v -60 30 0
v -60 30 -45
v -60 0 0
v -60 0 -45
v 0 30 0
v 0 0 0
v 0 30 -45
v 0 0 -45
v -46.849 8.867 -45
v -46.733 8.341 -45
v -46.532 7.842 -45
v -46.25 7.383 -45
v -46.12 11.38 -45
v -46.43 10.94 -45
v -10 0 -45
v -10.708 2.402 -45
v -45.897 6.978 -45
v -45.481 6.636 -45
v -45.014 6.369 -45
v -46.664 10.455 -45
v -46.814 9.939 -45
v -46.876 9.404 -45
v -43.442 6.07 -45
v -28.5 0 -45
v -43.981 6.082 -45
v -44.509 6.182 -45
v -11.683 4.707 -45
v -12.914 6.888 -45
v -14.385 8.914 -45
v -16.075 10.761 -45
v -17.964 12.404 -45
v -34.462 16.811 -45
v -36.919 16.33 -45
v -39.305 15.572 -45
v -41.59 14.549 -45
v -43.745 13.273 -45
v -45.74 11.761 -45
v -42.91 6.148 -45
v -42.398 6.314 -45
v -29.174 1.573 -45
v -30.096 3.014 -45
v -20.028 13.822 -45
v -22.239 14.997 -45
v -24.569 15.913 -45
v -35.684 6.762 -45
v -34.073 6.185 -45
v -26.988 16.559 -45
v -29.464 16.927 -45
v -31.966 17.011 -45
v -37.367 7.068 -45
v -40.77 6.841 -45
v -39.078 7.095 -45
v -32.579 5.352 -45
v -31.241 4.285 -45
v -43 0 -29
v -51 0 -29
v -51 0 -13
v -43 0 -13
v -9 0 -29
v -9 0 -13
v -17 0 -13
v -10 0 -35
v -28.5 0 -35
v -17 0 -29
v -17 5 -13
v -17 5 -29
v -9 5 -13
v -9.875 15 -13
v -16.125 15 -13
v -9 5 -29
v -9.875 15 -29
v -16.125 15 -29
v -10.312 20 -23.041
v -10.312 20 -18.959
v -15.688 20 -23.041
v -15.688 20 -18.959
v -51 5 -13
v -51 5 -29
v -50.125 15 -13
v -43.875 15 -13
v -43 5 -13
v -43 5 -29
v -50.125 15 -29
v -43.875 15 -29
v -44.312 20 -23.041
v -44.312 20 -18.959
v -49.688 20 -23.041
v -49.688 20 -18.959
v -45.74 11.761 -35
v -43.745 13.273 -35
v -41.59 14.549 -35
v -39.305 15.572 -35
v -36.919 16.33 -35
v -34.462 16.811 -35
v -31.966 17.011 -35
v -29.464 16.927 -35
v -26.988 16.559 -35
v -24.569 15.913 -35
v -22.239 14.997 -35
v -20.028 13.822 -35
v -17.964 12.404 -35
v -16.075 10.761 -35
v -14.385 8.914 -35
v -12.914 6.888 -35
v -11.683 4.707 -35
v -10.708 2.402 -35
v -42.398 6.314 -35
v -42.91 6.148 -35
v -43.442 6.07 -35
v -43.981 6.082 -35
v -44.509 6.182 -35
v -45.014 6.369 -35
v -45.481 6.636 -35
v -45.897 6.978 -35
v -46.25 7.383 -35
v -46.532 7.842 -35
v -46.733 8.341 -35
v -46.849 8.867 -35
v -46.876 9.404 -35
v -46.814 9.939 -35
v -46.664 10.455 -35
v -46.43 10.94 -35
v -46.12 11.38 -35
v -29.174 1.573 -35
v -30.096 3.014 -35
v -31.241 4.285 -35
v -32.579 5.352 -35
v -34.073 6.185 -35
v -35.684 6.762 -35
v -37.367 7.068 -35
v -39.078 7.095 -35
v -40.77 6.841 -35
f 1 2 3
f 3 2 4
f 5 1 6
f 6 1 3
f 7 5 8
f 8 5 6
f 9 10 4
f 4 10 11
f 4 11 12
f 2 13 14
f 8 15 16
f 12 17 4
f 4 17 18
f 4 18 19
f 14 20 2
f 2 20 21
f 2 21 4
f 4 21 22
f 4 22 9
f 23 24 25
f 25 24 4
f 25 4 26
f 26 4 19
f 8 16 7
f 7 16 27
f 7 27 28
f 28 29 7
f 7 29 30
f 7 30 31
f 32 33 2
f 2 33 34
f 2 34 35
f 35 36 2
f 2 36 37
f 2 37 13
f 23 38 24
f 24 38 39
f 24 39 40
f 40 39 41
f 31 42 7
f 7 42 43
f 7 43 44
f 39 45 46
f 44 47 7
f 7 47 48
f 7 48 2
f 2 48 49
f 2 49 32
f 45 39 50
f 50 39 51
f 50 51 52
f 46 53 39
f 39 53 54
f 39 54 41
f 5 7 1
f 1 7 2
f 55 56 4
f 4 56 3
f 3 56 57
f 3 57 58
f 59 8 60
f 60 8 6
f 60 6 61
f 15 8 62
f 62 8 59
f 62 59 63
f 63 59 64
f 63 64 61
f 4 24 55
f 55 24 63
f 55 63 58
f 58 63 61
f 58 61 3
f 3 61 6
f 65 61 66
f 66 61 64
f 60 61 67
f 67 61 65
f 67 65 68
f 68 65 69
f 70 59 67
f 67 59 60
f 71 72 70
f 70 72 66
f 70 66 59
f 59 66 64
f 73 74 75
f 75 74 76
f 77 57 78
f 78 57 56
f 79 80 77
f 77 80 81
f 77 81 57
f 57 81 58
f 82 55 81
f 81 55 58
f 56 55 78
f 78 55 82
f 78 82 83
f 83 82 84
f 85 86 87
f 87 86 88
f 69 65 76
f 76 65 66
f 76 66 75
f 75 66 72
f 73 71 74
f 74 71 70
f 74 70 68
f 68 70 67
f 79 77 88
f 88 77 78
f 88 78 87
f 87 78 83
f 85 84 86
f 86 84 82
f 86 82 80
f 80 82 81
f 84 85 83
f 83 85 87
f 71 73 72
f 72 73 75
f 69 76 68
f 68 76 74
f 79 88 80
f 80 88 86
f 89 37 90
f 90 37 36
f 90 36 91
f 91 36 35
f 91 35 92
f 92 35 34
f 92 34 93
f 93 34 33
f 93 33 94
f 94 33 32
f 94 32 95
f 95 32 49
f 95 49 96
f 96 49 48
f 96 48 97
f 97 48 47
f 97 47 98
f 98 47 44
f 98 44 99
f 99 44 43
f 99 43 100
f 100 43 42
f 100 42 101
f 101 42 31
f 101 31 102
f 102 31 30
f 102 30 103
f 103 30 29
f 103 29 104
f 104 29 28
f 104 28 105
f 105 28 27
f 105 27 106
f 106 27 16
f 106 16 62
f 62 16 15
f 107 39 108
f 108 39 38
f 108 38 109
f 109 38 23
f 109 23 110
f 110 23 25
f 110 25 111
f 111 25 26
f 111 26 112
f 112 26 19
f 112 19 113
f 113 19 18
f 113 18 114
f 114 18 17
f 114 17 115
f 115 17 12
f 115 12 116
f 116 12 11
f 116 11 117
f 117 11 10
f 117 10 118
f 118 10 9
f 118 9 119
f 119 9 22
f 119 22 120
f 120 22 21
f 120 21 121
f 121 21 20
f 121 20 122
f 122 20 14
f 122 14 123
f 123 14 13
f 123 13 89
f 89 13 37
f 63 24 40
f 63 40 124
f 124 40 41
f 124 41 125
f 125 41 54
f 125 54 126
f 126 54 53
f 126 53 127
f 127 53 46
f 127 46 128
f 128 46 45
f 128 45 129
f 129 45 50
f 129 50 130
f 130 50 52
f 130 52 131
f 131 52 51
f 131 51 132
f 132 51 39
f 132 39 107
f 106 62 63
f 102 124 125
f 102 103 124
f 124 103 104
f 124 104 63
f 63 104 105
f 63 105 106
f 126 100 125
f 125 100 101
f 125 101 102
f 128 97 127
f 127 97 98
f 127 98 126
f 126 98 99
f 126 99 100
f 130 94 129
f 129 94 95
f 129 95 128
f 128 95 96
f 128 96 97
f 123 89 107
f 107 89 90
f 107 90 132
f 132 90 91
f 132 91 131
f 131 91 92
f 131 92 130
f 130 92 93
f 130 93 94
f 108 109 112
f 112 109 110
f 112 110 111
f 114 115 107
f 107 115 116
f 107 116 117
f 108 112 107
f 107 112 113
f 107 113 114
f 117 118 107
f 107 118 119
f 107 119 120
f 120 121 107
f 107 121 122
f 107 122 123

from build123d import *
from OCP.BRepFilletAPI import BRepFilletAPI_MakeChamfer

# Parameters (mm, degrees)
SKETCH1_W           = 60
SKETCH1_H           = 45
BOSS_EXTRUDE1_DEPTH = 30
SKETCH2_W           = 8
SKETCH2_H           = 16
CUT_EXTRUDE1_DEPTH  = 20
CHAMFER1_SIZE       = 15
CHAMFER1_SIZE2      = 1.312329953
CHAMFER2_SIZE       = 5
CHAMFER2_SIZE2      = 5.958767963
CUT_EXTRUDE2_DEPTH  = 10


with BuildPart() as part:
    # Sketch1 → Boss-Extrude1 (new body)
    with BuildSketch(Plane(origin=(0, 0, 0), x_dir=(1, 0, 0), z_dir=(0, 1, 0))):
        with Locations((-30, 22.5)):
            Rectangle(SKETCH1_W, SKETCH1_H)
    extrude(amount=BOSS_EXTRUDE1_DEPTH)

    # Sketch2 → Cut-Extrude1 (cut)
    with BuildSketch(Plane(origin=(0, 0, 0), x_dir=(-1, 0, 0), z_dir=(0, -1, 0))):
        with Locations((47, 21)):
            Rectangle(SKETCH2_W, SKETCH2_H)
        with Locations((13, 21)):
            Rectangle(SKETCH2_W, SKETCH2_H)
    extrude(amount=-CUT_EXTRUDE1_DEPTH, mode=Mode.SUBTRACT)

    # Chamfer1: one chamfer whose edges measure the first distance from different faces: ONE call of the kernel's chamfer builder (chamfer() names one face for all edges)
    chamfer1_edges_1 = [part.edges().sort_by_distance(p)[0] for p in [
        (-51, 20, -21),
    ]]
    chamfer1_side_1 = [part.faces().sort_by_distance(p)[0] for p in [
        (-51, 10, -21),
    ]]
    chamfer1_edges_2 = [part.edges().sort_by_distance(p)[0] for p in [
        (-43, 20, -21),
    ]]
    chamfer1_side_2 = [part.faces().sort_by_distance(p)[0] for p in [
        (-43, 10, -21),
    ]]
    chamfer1_edges_3 = [part.edges().sort_by_distance(p)[0] for p in [
        (-17, 20, -21),
    ]]
    chamfer1_side_3 = [part.faces().sort_by_distance(p)[0] for p in [
        (-17, 10, -21),
    ]]
    chamfer1_edges_4 = [part.edges().sort_by_distance(p)[0] for p in [
        (-9, 20, -21),
    ]]
    chamfer1_side_4 = [part.faces().sort_by_distance(p)[0] for p in [
        (-9, 10, -21),
    ]]
    chamfer1 = BRepFilletAPI_MakeChamfer(part.part.solid().wrapped)
    for e in chamfer1_edges_1:
        chamfer1.Add(CHAMFER1_SIZE, CHAMFER1_SIZE2, e.wrapped, chamfer1_side_1[0].wrapped)  # the first distance lies on this face
    for e in chamfer1_edges_2:
        chamfer1.Add(CHAMFER1_SIZE, CHAMFER1_SIZE2, e.wrapped, chamfer1_side_2[0].wrapped)  # the first distance lies on this face
    for e in chamfer1_edges_3:
        chamfer1.Add(CHAMFER1_SIZE, CHAMFER1_SIZE2, e.wrapped, chamfer1_side_3[0].wrapped)  # the first distance lies on this face
    for e in chamfer1_edges_4:
        chamfer1.Add(CHAMFER1_SIZE, CHAMFER1_SIZE2, e.wrapped, chamfer1_side_4[0].wrapped)  # the first distance lies on this face
    add(Compound.cast(chamfer1.Shape()), mode=Mode.REPLACE)

    # Chamfer2: one chamfer whose edges measure the first distance from different faces: ONE call of the kernel's chamfer builder (chamfer() names one face for all edges)
    chamfer2_edges_1 = [part.edges().sort_by_distance(p)[0] for p in [
        (-13, 20, -29),
    ]]
    chamfer2_side_1 = [part.faces().sort_by_distance(p)[0] for p in [
        (-13, 9.298544625, -29),
    ]]
    chamfer2_edges_2 = [part.edges().sort_by_distance(p)[0] for p in [
        (-13, 20, -13),
    ]]
    chamfer2_side_2 = [part.faces().sort_by_distance(p)[0] for p in [
        (-13, 9.298544625, -13),
    ]]
    chamfer2_edges_3 = [part.edges().sort_by_distance(p)[0] for p in [
        (-47, 20, -29),
    ]]
    chamfer2_side_3 = [part.faces().sort_by_distance(p)[0] for p in [
        (-47, 9.298544625, -29),
    ]]
    chamfer2_edges_4 = [part.edges().sort_by_distance(p)[0] for p in [
        (-47, 20, -13),
    ]]
    chamfer2_side_4 = [part.faces().sort_by_distance(p)[0] for p in [
        (-47, 9.298544625, -13),
    ]]
    chamfer2 = BRepFilletAPI_MakeChamfer(part.part.solid().wrapped)
    for e in chamfer2_edges_1:
        chamfer2.Add(CHAMFER2_SIZE, CHAMFER2_SIZE2, e.wrapped, chamfer2_side_1[0].wrapped)  # the first distance lies on this face
    for e in chamfer2_edges_2:
        chamfer2.Add(CHAMFER2_SIZE, CHAMFER2_SIZE2, e.wrapped, chamfer2_side_2[0].wrapped)  # the first distance lies on this face
    for e in chamfer2_edges_3:
        chamfer2.Add(CHAMFER2_SIZE, CHAMFER2_SIZE2, e.wrapped, chamfer2_side_3[0].wrapped)  # the first distance lies on this face
    for e in chamfer2_edges_4:
        chamfer2.Add(CHAMFER2_SIZE, CHAMFER2_SIZE2, e.wrapped, chamfer2_side_4[0].wrapped)  # the first distance lies on this face
    add(Compound.cast(chamfer2.Shape()), mode=Mode.REPLACE)

    # Sketch4 → Cut-Extrude2 (cut)
    with BuildSketch(Plane(origin=(0, 0, -45), x_dir=(-1, 0, 0), z_dir=(0, 0, -1))):
        with BuildLine():
            Line((10, 0), (28.5, 0))
            ThreePointArc((28.5, 0), (34.073421984, 6.184666101), (42.397874378, 6.313583642))
            ThreePointArc((42.397874378, 6.313583642), (46.400635454, 7.606885175), (45.740315255, 11.761244612))
            ThreePointArc((45.740315255, 11.761244612), (24.568698428, 15.91316533), (10, 0))
        make_face()
    extrude(amount=-CUT_EXTRUDE2_DEPTH, mode=Mode.SUBTRACT)


solid = part.part
